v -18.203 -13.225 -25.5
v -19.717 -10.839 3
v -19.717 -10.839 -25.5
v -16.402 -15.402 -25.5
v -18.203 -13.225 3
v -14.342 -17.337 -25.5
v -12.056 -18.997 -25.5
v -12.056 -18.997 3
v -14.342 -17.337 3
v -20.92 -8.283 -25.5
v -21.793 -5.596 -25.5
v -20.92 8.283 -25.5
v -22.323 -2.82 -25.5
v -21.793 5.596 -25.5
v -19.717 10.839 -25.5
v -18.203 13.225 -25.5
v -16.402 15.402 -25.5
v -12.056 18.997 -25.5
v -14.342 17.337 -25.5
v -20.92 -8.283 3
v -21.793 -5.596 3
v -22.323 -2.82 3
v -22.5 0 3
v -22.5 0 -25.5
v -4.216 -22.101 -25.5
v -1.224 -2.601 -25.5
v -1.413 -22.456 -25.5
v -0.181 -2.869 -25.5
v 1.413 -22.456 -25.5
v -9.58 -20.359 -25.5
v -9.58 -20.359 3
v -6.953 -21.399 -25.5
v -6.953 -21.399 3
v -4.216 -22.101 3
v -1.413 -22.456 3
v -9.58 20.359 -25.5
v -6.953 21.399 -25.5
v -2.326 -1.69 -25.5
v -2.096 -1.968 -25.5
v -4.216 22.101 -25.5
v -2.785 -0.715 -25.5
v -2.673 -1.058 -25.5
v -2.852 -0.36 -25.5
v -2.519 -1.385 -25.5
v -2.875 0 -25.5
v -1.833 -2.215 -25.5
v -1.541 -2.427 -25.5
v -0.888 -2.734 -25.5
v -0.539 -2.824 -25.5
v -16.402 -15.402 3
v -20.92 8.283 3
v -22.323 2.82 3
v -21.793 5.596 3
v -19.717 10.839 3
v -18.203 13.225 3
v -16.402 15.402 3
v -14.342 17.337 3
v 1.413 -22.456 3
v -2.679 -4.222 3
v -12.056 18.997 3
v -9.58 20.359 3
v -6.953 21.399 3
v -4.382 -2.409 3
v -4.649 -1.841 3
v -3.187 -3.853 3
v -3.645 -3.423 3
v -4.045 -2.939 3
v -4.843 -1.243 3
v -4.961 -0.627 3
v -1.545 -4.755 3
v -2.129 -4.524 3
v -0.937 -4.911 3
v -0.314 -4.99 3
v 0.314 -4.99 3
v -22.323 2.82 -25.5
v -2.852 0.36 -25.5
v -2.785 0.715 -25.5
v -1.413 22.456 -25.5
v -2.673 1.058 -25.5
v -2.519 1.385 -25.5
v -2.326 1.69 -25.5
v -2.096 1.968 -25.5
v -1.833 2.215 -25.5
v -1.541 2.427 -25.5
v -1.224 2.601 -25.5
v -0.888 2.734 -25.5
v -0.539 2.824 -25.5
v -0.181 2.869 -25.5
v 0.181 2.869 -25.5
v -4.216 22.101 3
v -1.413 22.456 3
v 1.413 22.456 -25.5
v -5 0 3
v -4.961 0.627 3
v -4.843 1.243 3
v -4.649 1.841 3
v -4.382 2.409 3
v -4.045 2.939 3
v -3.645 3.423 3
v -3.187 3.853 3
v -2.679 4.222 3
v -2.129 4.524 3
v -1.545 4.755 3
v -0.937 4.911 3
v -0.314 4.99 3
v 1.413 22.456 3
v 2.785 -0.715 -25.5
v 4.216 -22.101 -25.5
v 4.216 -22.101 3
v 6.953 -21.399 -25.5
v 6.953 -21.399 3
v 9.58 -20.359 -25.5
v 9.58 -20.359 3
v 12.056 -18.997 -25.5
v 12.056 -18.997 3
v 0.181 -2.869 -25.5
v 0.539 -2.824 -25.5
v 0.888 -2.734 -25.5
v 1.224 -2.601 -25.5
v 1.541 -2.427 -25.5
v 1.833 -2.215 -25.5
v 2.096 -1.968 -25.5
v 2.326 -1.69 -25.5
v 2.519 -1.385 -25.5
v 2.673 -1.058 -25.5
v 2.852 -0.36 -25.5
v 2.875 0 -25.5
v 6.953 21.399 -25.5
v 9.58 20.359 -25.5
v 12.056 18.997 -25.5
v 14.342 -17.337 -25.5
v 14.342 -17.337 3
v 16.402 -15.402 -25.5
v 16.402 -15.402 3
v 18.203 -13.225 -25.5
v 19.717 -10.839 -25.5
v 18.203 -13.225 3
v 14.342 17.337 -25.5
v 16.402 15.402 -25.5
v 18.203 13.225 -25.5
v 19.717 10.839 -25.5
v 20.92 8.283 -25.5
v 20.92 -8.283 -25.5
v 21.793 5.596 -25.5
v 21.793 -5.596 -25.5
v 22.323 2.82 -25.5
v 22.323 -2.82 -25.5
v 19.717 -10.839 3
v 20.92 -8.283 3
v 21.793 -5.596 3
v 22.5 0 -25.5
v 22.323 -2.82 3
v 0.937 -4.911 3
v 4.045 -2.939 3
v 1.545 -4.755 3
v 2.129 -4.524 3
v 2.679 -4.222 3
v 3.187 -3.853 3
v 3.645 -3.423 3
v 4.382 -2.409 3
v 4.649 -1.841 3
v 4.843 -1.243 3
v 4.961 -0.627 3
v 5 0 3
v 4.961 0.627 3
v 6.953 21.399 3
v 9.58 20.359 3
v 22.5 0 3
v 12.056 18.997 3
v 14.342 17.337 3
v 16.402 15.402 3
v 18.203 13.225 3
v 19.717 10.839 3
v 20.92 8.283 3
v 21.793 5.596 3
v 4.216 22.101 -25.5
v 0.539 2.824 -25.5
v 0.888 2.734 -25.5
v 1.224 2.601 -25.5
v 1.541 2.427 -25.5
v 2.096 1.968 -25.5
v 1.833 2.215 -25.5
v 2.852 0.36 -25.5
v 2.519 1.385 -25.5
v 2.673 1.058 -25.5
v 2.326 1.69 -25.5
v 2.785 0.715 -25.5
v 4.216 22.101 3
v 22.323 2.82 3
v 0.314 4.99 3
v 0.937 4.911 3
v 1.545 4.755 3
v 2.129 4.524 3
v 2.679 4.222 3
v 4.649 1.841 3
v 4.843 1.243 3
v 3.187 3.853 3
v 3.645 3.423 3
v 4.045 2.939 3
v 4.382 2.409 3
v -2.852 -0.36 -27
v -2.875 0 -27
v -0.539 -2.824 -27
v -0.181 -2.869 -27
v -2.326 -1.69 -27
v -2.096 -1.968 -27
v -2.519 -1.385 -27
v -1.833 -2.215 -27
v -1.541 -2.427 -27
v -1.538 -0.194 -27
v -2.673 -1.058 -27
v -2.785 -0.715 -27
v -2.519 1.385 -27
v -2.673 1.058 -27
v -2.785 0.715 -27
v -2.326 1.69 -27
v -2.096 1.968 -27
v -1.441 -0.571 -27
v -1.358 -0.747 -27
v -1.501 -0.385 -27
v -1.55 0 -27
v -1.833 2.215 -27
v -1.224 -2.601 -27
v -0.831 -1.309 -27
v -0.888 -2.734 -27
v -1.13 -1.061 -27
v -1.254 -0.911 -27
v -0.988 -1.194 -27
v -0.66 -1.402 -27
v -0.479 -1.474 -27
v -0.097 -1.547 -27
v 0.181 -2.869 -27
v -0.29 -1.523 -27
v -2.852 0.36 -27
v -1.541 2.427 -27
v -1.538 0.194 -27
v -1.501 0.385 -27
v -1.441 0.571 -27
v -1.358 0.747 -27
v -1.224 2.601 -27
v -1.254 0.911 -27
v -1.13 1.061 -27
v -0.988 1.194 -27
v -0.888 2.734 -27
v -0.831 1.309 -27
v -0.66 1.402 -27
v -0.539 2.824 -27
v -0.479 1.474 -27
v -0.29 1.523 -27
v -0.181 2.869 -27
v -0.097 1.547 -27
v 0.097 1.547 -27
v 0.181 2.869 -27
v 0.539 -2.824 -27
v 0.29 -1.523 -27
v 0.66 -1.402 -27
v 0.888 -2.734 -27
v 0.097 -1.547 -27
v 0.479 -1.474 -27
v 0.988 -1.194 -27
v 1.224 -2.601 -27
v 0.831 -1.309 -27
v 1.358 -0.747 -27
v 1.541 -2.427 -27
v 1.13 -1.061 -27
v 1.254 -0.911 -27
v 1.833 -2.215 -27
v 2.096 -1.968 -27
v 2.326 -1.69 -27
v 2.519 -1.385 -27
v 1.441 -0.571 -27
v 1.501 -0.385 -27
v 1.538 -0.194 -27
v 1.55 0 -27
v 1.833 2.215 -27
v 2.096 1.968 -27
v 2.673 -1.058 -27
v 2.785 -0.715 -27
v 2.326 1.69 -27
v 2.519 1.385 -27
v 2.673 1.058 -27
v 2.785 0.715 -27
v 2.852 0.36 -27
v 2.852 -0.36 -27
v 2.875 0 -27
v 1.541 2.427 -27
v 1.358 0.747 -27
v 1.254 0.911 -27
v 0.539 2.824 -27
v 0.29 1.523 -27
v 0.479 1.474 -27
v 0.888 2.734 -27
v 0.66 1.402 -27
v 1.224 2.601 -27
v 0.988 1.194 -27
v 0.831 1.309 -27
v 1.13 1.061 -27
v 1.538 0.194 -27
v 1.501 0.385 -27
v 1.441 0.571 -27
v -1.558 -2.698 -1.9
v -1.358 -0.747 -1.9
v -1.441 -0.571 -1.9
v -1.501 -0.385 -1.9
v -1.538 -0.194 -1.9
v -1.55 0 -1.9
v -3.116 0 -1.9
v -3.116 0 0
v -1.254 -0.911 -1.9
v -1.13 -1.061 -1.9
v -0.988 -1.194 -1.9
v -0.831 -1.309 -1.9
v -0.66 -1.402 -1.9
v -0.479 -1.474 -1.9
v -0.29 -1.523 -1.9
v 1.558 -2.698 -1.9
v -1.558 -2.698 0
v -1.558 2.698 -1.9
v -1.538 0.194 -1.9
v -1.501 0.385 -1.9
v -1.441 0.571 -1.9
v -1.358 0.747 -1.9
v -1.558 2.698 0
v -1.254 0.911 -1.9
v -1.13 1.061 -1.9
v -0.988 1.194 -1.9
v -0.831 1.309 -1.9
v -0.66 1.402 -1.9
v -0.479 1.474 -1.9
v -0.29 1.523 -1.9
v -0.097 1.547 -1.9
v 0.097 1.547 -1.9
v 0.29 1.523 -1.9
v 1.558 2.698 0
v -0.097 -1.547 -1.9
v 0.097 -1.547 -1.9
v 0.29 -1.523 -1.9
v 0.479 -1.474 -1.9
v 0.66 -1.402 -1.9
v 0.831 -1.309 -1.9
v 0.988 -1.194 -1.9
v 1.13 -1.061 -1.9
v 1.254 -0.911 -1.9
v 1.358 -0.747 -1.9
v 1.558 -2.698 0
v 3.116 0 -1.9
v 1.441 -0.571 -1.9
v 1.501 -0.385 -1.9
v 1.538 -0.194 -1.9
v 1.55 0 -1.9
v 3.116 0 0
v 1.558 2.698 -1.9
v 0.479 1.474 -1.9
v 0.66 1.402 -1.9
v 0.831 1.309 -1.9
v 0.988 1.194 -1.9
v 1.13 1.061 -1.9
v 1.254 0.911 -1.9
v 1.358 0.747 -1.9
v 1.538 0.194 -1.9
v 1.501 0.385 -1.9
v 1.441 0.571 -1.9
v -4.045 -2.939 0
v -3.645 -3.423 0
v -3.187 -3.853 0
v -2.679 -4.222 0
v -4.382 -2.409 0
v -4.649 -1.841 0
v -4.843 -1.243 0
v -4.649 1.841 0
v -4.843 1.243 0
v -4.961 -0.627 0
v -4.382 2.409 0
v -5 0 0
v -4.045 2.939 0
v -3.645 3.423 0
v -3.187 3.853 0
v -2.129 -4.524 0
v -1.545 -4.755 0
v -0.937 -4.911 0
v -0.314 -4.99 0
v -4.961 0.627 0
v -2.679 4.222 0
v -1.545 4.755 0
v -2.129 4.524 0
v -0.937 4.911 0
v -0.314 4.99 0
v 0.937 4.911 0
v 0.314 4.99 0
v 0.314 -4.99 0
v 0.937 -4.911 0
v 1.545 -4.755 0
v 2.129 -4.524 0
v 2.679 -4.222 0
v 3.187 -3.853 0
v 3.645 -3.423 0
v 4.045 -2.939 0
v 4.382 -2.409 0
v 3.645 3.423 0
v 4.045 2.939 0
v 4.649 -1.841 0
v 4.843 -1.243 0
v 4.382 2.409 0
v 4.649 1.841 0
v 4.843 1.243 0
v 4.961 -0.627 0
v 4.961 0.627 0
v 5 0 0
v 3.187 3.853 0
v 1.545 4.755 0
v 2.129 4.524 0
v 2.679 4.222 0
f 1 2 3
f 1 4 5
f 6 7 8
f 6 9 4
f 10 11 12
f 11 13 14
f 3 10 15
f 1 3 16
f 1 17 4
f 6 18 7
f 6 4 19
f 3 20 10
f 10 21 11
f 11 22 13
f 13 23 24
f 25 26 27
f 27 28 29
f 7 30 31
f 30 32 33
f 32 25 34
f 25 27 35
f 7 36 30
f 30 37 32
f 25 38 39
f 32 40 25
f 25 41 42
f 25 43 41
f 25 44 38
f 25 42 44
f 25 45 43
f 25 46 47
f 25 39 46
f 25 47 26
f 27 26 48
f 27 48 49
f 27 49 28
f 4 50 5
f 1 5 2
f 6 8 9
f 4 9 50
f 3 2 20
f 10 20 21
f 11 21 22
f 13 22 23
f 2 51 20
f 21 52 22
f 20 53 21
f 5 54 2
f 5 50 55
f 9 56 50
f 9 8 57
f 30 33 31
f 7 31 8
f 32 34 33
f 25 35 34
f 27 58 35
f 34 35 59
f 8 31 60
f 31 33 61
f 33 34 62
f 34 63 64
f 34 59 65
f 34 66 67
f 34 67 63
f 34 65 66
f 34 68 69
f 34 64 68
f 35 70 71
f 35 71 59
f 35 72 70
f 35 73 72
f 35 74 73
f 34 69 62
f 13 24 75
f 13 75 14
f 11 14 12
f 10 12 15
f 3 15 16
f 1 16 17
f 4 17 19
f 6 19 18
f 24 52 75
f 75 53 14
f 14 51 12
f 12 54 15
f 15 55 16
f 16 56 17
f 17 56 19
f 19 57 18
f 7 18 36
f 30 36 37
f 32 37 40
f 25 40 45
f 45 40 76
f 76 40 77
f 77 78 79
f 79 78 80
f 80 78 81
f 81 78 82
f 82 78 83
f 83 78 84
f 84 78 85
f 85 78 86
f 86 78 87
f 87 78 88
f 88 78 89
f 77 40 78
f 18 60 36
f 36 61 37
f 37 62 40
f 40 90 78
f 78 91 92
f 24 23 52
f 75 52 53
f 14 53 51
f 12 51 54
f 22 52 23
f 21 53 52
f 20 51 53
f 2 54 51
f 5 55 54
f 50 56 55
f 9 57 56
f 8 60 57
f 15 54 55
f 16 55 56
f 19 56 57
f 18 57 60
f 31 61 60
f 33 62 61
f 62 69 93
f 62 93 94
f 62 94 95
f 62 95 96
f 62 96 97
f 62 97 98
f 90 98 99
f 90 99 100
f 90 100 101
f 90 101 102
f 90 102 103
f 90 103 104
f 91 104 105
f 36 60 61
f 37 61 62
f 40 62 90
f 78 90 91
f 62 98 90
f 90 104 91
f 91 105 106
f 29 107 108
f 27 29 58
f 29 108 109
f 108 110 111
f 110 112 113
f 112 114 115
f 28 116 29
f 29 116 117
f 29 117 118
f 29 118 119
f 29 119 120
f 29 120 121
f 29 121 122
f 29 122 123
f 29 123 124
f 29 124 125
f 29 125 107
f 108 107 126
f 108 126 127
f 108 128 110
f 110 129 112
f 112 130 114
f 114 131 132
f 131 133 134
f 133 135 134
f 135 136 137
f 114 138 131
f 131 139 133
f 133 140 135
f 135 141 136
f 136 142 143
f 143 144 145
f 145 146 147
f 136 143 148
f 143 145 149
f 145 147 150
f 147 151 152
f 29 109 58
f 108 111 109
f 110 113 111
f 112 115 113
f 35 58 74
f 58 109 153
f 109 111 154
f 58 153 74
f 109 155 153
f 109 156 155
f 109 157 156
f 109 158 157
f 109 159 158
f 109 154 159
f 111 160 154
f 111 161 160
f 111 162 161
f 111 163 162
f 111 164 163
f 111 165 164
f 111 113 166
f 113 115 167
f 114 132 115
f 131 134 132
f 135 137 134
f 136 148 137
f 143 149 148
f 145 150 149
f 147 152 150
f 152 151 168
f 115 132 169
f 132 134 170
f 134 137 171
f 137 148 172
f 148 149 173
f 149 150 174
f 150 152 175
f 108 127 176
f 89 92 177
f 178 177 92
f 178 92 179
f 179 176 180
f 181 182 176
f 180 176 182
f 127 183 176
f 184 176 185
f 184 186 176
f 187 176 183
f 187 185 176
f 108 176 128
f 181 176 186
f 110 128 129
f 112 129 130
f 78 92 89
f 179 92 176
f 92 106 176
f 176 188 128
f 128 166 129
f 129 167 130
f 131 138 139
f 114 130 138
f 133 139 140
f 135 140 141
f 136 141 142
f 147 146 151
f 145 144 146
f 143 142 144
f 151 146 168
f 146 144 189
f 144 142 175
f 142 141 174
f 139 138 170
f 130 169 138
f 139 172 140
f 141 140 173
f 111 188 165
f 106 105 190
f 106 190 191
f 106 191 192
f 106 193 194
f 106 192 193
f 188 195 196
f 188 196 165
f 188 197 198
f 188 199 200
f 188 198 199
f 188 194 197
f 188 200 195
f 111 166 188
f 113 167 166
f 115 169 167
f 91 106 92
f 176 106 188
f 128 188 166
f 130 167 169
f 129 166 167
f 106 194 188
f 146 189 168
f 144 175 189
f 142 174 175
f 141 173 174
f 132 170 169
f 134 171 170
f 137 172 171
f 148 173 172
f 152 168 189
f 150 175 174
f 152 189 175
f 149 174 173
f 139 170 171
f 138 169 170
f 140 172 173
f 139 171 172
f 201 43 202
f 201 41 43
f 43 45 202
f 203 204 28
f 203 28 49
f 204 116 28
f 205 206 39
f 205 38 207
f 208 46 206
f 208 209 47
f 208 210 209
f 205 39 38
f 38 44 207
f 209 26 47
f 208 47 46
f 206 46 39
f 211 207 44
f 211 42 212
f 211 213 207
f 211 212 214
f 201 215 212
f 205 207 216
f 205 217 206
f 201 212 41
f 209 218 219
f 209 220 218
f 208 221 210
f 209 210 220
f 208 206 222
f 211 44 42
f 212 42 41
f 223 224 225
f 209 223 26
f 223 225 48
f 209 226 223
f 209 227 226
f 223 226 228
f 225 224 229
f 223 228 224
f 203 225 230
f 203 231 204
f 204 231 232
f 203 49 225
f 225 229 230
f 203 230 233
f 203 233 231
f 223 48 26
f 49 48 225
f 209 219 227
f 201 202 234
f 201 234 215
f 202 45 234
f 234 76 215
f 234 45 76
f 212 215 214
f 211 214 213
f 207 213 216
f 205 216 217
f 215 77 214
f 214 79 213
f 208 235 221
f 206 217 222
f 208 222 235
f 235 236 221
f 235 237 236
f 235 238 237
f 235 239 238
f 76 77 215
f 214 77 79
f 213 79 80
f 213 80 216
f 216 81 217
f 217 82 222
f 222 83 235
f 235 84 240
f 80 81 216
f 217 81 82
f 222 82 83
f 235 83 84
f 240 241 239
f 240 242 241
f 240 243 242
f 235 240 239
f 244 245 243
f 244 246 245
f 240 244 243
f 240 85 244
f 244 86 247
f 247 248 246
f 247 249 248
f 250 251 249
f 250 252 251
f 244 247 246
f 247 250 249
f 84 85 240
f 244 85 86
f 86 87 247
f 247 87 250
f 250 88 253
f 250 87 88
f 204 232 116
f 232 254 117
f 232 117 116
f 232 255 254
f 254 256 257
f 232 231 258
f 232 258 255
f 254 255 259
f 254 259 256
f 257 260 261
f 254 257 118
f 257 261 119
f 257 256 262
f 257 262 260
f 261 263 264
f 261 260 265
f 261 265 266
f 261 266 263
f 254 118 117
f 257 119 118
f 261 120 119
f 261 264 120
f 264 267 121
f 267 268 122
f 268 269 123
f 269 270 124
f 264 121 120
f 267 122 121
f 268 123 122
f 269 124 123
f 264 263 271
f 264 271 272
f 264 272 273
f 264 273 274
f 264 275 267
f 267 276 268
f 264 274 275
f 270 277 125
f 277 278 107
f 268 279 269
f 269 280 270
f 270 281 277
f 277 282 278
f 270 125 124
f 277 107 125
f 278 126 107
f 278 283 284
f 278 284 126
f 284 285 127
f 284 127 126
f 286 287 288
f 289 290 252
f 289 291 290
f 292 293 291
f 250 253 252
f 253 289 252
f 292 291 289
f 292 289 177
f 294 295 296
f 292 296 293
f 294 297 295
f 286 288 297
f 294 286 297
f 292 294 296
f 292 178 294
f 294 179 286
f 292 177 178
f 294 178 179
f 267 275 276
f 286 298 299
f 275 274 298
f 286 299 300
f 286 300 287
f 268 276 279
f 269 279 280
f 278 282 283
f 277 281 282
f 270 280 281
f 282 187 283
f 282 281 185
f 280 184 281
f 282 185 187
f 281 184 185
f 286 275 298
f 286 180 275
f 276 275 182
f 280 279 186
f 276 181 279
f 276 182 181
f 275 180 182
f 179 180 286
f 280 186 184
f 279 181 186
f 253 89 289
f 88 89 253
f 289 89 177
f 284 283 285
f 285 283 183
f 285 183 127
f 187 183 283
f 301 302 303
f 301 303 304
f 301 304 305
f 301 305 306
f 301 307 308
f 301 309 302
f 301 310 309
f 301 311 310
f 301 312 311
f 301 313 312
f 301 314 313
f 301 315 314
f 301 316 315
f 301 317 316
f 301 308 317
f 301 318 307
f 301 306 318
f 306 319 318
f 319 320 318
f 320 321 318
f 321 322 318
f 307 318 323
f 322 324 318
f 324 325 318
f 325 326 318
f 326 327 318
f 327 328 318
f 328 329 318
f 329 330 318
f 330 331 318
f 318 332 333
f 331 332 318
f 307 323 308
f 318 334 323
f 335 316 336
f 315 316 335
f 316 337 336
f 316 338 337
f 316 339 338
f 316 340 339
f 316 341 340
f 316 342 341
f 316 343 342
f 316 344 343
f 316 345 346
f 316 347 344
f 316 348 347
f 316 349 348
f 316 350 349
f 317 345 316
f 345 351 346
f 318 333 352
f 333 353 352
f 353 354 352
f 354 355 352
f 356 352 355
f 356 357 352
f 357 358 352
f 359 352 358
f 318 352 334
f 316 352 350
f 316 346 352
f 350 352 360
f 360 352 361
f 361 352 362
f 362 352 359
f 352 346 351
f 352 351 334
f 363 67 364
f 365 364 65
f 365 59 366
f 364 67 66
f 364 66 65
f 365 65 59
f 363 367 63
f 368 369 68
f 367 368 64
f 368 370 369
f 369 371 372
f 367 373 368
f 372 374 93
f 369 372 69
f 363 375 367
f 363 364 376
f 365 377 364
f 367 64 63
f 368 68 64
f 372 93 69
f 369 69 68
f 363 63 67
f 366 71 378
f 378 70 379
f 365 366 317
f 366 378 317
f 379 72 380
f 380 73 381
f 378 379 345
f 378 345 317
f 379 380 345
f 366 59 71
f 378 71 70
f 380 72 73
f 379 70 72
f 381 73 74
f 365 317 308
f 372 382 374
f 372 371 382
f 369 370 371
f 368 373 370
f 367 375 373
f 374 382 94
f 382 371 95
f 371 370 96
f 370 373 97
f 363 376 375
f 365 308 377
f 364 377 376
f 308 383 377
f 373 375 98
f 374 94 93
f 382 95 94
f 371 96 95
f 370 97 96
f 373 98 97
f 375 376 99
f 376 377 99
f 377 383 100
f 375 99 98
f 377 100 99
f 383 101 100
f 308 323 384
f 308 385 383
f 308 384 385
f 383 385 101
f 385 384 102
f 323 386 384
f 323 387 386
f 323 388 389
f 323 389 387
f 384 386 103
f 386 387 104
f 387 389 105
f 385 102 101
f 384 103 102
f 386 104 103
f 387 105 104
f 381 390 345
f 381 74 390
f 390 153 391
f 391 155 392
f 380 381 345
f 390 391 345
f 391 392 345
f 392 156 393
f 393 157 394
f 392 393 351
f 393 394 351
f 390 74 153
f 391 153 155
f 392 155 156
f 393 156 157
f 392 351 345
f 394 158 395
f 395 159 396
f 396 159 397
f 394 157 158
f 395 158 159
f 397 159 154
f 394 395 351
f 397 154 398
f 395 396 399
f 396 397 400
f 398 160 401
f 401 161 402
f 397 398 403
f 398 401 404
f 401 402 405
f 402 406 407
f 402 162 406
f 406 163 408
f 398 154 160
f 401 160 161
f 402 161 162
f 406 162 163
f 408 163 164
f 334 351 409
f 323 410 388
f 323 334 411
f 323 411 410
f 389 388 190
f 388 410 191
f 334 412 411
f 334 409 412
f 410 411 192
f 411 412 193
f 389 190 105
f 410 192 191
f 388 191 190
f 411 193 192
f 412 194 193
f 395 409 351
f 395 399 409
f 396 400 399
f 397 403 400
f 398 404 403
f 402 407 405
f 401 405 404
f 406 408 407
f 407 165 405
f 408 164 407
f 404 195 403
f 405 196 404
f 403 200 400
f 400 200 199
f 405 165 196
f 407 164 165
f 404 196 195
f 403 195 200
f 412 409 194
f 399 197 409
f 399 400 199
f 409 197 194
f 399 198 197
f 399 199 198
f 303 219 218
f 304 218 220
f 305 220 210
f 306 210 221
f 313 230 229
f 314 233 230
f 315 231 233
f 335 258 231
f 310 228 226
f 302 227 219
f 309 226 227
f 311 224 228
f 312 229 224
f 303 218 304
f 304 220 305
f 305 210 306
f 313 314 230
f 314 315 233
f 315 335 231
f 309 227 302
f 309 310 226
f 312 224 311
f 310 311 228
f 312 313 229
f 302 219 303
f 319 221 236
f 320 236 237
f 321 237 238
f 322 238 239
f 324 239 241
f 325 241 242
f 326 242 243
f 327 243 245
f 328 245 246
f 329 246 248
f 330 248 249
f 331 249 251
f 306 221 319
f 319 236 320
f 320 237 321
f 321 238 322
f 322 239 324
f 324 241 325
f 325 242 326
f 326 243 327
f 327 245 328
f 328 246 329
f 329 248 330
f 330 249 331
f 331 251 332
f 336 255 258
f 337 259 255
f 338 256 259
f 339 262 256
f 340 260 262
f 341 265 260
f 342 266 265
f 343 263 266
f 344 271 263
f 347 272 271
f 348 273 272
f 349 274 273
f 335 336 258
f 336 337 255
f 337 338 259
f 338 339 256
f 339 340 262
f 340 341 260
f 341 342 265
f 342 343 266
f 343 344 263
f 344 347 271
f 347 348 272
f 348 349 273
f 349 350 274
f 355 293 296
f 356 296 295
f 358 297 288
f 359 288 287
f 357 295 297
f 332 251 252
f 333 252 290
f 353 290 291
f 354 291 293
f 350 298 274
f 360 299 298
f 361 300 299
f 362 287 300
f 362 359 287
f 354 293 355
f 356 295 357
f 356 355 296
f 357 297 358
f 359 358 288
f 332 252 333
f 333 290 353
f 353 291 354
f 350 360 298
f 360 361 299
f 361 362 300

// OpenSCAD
$fn = 50;


difference() {
	union() {
		translate(v = [0, 0, -25.5000000000]) {
			cylinder(h = 28.5000000000, r = 22.5000000000);
		}
		#translate(v = [0, 0, -27.0000000000]) {
			cylinder(h = 27, r = 2.8750000000);
		}
	}
	union() {
		translate(v = [0, 0, 0]) {
			rotate(a = [0, 0, 0]) {
				difference() {
					union() {
						translate(v = [0, 0, -1.9000000000]) {
							linear_extrude(height = 1.9000000000) {
								polygon(points = [[3.1158000000, 0.0000000000], [1.5579000000, 2.6983619531], [-1.5579000000, 2.6983619531], [-3.1158000000, 0.0000000000], [-1.5579000000, -2.6983619531], [1.5579000000, -2.6983619531]]);
							}
						}
					}
					union();
				}
			}
		}
		#cylinder(h = 3, r = 5.0000000000);
		#translate(v = [0, 0, -100.0000000000]) {
			cylinder(h = 200, r = 1.5500000000);
		}
	}
}
